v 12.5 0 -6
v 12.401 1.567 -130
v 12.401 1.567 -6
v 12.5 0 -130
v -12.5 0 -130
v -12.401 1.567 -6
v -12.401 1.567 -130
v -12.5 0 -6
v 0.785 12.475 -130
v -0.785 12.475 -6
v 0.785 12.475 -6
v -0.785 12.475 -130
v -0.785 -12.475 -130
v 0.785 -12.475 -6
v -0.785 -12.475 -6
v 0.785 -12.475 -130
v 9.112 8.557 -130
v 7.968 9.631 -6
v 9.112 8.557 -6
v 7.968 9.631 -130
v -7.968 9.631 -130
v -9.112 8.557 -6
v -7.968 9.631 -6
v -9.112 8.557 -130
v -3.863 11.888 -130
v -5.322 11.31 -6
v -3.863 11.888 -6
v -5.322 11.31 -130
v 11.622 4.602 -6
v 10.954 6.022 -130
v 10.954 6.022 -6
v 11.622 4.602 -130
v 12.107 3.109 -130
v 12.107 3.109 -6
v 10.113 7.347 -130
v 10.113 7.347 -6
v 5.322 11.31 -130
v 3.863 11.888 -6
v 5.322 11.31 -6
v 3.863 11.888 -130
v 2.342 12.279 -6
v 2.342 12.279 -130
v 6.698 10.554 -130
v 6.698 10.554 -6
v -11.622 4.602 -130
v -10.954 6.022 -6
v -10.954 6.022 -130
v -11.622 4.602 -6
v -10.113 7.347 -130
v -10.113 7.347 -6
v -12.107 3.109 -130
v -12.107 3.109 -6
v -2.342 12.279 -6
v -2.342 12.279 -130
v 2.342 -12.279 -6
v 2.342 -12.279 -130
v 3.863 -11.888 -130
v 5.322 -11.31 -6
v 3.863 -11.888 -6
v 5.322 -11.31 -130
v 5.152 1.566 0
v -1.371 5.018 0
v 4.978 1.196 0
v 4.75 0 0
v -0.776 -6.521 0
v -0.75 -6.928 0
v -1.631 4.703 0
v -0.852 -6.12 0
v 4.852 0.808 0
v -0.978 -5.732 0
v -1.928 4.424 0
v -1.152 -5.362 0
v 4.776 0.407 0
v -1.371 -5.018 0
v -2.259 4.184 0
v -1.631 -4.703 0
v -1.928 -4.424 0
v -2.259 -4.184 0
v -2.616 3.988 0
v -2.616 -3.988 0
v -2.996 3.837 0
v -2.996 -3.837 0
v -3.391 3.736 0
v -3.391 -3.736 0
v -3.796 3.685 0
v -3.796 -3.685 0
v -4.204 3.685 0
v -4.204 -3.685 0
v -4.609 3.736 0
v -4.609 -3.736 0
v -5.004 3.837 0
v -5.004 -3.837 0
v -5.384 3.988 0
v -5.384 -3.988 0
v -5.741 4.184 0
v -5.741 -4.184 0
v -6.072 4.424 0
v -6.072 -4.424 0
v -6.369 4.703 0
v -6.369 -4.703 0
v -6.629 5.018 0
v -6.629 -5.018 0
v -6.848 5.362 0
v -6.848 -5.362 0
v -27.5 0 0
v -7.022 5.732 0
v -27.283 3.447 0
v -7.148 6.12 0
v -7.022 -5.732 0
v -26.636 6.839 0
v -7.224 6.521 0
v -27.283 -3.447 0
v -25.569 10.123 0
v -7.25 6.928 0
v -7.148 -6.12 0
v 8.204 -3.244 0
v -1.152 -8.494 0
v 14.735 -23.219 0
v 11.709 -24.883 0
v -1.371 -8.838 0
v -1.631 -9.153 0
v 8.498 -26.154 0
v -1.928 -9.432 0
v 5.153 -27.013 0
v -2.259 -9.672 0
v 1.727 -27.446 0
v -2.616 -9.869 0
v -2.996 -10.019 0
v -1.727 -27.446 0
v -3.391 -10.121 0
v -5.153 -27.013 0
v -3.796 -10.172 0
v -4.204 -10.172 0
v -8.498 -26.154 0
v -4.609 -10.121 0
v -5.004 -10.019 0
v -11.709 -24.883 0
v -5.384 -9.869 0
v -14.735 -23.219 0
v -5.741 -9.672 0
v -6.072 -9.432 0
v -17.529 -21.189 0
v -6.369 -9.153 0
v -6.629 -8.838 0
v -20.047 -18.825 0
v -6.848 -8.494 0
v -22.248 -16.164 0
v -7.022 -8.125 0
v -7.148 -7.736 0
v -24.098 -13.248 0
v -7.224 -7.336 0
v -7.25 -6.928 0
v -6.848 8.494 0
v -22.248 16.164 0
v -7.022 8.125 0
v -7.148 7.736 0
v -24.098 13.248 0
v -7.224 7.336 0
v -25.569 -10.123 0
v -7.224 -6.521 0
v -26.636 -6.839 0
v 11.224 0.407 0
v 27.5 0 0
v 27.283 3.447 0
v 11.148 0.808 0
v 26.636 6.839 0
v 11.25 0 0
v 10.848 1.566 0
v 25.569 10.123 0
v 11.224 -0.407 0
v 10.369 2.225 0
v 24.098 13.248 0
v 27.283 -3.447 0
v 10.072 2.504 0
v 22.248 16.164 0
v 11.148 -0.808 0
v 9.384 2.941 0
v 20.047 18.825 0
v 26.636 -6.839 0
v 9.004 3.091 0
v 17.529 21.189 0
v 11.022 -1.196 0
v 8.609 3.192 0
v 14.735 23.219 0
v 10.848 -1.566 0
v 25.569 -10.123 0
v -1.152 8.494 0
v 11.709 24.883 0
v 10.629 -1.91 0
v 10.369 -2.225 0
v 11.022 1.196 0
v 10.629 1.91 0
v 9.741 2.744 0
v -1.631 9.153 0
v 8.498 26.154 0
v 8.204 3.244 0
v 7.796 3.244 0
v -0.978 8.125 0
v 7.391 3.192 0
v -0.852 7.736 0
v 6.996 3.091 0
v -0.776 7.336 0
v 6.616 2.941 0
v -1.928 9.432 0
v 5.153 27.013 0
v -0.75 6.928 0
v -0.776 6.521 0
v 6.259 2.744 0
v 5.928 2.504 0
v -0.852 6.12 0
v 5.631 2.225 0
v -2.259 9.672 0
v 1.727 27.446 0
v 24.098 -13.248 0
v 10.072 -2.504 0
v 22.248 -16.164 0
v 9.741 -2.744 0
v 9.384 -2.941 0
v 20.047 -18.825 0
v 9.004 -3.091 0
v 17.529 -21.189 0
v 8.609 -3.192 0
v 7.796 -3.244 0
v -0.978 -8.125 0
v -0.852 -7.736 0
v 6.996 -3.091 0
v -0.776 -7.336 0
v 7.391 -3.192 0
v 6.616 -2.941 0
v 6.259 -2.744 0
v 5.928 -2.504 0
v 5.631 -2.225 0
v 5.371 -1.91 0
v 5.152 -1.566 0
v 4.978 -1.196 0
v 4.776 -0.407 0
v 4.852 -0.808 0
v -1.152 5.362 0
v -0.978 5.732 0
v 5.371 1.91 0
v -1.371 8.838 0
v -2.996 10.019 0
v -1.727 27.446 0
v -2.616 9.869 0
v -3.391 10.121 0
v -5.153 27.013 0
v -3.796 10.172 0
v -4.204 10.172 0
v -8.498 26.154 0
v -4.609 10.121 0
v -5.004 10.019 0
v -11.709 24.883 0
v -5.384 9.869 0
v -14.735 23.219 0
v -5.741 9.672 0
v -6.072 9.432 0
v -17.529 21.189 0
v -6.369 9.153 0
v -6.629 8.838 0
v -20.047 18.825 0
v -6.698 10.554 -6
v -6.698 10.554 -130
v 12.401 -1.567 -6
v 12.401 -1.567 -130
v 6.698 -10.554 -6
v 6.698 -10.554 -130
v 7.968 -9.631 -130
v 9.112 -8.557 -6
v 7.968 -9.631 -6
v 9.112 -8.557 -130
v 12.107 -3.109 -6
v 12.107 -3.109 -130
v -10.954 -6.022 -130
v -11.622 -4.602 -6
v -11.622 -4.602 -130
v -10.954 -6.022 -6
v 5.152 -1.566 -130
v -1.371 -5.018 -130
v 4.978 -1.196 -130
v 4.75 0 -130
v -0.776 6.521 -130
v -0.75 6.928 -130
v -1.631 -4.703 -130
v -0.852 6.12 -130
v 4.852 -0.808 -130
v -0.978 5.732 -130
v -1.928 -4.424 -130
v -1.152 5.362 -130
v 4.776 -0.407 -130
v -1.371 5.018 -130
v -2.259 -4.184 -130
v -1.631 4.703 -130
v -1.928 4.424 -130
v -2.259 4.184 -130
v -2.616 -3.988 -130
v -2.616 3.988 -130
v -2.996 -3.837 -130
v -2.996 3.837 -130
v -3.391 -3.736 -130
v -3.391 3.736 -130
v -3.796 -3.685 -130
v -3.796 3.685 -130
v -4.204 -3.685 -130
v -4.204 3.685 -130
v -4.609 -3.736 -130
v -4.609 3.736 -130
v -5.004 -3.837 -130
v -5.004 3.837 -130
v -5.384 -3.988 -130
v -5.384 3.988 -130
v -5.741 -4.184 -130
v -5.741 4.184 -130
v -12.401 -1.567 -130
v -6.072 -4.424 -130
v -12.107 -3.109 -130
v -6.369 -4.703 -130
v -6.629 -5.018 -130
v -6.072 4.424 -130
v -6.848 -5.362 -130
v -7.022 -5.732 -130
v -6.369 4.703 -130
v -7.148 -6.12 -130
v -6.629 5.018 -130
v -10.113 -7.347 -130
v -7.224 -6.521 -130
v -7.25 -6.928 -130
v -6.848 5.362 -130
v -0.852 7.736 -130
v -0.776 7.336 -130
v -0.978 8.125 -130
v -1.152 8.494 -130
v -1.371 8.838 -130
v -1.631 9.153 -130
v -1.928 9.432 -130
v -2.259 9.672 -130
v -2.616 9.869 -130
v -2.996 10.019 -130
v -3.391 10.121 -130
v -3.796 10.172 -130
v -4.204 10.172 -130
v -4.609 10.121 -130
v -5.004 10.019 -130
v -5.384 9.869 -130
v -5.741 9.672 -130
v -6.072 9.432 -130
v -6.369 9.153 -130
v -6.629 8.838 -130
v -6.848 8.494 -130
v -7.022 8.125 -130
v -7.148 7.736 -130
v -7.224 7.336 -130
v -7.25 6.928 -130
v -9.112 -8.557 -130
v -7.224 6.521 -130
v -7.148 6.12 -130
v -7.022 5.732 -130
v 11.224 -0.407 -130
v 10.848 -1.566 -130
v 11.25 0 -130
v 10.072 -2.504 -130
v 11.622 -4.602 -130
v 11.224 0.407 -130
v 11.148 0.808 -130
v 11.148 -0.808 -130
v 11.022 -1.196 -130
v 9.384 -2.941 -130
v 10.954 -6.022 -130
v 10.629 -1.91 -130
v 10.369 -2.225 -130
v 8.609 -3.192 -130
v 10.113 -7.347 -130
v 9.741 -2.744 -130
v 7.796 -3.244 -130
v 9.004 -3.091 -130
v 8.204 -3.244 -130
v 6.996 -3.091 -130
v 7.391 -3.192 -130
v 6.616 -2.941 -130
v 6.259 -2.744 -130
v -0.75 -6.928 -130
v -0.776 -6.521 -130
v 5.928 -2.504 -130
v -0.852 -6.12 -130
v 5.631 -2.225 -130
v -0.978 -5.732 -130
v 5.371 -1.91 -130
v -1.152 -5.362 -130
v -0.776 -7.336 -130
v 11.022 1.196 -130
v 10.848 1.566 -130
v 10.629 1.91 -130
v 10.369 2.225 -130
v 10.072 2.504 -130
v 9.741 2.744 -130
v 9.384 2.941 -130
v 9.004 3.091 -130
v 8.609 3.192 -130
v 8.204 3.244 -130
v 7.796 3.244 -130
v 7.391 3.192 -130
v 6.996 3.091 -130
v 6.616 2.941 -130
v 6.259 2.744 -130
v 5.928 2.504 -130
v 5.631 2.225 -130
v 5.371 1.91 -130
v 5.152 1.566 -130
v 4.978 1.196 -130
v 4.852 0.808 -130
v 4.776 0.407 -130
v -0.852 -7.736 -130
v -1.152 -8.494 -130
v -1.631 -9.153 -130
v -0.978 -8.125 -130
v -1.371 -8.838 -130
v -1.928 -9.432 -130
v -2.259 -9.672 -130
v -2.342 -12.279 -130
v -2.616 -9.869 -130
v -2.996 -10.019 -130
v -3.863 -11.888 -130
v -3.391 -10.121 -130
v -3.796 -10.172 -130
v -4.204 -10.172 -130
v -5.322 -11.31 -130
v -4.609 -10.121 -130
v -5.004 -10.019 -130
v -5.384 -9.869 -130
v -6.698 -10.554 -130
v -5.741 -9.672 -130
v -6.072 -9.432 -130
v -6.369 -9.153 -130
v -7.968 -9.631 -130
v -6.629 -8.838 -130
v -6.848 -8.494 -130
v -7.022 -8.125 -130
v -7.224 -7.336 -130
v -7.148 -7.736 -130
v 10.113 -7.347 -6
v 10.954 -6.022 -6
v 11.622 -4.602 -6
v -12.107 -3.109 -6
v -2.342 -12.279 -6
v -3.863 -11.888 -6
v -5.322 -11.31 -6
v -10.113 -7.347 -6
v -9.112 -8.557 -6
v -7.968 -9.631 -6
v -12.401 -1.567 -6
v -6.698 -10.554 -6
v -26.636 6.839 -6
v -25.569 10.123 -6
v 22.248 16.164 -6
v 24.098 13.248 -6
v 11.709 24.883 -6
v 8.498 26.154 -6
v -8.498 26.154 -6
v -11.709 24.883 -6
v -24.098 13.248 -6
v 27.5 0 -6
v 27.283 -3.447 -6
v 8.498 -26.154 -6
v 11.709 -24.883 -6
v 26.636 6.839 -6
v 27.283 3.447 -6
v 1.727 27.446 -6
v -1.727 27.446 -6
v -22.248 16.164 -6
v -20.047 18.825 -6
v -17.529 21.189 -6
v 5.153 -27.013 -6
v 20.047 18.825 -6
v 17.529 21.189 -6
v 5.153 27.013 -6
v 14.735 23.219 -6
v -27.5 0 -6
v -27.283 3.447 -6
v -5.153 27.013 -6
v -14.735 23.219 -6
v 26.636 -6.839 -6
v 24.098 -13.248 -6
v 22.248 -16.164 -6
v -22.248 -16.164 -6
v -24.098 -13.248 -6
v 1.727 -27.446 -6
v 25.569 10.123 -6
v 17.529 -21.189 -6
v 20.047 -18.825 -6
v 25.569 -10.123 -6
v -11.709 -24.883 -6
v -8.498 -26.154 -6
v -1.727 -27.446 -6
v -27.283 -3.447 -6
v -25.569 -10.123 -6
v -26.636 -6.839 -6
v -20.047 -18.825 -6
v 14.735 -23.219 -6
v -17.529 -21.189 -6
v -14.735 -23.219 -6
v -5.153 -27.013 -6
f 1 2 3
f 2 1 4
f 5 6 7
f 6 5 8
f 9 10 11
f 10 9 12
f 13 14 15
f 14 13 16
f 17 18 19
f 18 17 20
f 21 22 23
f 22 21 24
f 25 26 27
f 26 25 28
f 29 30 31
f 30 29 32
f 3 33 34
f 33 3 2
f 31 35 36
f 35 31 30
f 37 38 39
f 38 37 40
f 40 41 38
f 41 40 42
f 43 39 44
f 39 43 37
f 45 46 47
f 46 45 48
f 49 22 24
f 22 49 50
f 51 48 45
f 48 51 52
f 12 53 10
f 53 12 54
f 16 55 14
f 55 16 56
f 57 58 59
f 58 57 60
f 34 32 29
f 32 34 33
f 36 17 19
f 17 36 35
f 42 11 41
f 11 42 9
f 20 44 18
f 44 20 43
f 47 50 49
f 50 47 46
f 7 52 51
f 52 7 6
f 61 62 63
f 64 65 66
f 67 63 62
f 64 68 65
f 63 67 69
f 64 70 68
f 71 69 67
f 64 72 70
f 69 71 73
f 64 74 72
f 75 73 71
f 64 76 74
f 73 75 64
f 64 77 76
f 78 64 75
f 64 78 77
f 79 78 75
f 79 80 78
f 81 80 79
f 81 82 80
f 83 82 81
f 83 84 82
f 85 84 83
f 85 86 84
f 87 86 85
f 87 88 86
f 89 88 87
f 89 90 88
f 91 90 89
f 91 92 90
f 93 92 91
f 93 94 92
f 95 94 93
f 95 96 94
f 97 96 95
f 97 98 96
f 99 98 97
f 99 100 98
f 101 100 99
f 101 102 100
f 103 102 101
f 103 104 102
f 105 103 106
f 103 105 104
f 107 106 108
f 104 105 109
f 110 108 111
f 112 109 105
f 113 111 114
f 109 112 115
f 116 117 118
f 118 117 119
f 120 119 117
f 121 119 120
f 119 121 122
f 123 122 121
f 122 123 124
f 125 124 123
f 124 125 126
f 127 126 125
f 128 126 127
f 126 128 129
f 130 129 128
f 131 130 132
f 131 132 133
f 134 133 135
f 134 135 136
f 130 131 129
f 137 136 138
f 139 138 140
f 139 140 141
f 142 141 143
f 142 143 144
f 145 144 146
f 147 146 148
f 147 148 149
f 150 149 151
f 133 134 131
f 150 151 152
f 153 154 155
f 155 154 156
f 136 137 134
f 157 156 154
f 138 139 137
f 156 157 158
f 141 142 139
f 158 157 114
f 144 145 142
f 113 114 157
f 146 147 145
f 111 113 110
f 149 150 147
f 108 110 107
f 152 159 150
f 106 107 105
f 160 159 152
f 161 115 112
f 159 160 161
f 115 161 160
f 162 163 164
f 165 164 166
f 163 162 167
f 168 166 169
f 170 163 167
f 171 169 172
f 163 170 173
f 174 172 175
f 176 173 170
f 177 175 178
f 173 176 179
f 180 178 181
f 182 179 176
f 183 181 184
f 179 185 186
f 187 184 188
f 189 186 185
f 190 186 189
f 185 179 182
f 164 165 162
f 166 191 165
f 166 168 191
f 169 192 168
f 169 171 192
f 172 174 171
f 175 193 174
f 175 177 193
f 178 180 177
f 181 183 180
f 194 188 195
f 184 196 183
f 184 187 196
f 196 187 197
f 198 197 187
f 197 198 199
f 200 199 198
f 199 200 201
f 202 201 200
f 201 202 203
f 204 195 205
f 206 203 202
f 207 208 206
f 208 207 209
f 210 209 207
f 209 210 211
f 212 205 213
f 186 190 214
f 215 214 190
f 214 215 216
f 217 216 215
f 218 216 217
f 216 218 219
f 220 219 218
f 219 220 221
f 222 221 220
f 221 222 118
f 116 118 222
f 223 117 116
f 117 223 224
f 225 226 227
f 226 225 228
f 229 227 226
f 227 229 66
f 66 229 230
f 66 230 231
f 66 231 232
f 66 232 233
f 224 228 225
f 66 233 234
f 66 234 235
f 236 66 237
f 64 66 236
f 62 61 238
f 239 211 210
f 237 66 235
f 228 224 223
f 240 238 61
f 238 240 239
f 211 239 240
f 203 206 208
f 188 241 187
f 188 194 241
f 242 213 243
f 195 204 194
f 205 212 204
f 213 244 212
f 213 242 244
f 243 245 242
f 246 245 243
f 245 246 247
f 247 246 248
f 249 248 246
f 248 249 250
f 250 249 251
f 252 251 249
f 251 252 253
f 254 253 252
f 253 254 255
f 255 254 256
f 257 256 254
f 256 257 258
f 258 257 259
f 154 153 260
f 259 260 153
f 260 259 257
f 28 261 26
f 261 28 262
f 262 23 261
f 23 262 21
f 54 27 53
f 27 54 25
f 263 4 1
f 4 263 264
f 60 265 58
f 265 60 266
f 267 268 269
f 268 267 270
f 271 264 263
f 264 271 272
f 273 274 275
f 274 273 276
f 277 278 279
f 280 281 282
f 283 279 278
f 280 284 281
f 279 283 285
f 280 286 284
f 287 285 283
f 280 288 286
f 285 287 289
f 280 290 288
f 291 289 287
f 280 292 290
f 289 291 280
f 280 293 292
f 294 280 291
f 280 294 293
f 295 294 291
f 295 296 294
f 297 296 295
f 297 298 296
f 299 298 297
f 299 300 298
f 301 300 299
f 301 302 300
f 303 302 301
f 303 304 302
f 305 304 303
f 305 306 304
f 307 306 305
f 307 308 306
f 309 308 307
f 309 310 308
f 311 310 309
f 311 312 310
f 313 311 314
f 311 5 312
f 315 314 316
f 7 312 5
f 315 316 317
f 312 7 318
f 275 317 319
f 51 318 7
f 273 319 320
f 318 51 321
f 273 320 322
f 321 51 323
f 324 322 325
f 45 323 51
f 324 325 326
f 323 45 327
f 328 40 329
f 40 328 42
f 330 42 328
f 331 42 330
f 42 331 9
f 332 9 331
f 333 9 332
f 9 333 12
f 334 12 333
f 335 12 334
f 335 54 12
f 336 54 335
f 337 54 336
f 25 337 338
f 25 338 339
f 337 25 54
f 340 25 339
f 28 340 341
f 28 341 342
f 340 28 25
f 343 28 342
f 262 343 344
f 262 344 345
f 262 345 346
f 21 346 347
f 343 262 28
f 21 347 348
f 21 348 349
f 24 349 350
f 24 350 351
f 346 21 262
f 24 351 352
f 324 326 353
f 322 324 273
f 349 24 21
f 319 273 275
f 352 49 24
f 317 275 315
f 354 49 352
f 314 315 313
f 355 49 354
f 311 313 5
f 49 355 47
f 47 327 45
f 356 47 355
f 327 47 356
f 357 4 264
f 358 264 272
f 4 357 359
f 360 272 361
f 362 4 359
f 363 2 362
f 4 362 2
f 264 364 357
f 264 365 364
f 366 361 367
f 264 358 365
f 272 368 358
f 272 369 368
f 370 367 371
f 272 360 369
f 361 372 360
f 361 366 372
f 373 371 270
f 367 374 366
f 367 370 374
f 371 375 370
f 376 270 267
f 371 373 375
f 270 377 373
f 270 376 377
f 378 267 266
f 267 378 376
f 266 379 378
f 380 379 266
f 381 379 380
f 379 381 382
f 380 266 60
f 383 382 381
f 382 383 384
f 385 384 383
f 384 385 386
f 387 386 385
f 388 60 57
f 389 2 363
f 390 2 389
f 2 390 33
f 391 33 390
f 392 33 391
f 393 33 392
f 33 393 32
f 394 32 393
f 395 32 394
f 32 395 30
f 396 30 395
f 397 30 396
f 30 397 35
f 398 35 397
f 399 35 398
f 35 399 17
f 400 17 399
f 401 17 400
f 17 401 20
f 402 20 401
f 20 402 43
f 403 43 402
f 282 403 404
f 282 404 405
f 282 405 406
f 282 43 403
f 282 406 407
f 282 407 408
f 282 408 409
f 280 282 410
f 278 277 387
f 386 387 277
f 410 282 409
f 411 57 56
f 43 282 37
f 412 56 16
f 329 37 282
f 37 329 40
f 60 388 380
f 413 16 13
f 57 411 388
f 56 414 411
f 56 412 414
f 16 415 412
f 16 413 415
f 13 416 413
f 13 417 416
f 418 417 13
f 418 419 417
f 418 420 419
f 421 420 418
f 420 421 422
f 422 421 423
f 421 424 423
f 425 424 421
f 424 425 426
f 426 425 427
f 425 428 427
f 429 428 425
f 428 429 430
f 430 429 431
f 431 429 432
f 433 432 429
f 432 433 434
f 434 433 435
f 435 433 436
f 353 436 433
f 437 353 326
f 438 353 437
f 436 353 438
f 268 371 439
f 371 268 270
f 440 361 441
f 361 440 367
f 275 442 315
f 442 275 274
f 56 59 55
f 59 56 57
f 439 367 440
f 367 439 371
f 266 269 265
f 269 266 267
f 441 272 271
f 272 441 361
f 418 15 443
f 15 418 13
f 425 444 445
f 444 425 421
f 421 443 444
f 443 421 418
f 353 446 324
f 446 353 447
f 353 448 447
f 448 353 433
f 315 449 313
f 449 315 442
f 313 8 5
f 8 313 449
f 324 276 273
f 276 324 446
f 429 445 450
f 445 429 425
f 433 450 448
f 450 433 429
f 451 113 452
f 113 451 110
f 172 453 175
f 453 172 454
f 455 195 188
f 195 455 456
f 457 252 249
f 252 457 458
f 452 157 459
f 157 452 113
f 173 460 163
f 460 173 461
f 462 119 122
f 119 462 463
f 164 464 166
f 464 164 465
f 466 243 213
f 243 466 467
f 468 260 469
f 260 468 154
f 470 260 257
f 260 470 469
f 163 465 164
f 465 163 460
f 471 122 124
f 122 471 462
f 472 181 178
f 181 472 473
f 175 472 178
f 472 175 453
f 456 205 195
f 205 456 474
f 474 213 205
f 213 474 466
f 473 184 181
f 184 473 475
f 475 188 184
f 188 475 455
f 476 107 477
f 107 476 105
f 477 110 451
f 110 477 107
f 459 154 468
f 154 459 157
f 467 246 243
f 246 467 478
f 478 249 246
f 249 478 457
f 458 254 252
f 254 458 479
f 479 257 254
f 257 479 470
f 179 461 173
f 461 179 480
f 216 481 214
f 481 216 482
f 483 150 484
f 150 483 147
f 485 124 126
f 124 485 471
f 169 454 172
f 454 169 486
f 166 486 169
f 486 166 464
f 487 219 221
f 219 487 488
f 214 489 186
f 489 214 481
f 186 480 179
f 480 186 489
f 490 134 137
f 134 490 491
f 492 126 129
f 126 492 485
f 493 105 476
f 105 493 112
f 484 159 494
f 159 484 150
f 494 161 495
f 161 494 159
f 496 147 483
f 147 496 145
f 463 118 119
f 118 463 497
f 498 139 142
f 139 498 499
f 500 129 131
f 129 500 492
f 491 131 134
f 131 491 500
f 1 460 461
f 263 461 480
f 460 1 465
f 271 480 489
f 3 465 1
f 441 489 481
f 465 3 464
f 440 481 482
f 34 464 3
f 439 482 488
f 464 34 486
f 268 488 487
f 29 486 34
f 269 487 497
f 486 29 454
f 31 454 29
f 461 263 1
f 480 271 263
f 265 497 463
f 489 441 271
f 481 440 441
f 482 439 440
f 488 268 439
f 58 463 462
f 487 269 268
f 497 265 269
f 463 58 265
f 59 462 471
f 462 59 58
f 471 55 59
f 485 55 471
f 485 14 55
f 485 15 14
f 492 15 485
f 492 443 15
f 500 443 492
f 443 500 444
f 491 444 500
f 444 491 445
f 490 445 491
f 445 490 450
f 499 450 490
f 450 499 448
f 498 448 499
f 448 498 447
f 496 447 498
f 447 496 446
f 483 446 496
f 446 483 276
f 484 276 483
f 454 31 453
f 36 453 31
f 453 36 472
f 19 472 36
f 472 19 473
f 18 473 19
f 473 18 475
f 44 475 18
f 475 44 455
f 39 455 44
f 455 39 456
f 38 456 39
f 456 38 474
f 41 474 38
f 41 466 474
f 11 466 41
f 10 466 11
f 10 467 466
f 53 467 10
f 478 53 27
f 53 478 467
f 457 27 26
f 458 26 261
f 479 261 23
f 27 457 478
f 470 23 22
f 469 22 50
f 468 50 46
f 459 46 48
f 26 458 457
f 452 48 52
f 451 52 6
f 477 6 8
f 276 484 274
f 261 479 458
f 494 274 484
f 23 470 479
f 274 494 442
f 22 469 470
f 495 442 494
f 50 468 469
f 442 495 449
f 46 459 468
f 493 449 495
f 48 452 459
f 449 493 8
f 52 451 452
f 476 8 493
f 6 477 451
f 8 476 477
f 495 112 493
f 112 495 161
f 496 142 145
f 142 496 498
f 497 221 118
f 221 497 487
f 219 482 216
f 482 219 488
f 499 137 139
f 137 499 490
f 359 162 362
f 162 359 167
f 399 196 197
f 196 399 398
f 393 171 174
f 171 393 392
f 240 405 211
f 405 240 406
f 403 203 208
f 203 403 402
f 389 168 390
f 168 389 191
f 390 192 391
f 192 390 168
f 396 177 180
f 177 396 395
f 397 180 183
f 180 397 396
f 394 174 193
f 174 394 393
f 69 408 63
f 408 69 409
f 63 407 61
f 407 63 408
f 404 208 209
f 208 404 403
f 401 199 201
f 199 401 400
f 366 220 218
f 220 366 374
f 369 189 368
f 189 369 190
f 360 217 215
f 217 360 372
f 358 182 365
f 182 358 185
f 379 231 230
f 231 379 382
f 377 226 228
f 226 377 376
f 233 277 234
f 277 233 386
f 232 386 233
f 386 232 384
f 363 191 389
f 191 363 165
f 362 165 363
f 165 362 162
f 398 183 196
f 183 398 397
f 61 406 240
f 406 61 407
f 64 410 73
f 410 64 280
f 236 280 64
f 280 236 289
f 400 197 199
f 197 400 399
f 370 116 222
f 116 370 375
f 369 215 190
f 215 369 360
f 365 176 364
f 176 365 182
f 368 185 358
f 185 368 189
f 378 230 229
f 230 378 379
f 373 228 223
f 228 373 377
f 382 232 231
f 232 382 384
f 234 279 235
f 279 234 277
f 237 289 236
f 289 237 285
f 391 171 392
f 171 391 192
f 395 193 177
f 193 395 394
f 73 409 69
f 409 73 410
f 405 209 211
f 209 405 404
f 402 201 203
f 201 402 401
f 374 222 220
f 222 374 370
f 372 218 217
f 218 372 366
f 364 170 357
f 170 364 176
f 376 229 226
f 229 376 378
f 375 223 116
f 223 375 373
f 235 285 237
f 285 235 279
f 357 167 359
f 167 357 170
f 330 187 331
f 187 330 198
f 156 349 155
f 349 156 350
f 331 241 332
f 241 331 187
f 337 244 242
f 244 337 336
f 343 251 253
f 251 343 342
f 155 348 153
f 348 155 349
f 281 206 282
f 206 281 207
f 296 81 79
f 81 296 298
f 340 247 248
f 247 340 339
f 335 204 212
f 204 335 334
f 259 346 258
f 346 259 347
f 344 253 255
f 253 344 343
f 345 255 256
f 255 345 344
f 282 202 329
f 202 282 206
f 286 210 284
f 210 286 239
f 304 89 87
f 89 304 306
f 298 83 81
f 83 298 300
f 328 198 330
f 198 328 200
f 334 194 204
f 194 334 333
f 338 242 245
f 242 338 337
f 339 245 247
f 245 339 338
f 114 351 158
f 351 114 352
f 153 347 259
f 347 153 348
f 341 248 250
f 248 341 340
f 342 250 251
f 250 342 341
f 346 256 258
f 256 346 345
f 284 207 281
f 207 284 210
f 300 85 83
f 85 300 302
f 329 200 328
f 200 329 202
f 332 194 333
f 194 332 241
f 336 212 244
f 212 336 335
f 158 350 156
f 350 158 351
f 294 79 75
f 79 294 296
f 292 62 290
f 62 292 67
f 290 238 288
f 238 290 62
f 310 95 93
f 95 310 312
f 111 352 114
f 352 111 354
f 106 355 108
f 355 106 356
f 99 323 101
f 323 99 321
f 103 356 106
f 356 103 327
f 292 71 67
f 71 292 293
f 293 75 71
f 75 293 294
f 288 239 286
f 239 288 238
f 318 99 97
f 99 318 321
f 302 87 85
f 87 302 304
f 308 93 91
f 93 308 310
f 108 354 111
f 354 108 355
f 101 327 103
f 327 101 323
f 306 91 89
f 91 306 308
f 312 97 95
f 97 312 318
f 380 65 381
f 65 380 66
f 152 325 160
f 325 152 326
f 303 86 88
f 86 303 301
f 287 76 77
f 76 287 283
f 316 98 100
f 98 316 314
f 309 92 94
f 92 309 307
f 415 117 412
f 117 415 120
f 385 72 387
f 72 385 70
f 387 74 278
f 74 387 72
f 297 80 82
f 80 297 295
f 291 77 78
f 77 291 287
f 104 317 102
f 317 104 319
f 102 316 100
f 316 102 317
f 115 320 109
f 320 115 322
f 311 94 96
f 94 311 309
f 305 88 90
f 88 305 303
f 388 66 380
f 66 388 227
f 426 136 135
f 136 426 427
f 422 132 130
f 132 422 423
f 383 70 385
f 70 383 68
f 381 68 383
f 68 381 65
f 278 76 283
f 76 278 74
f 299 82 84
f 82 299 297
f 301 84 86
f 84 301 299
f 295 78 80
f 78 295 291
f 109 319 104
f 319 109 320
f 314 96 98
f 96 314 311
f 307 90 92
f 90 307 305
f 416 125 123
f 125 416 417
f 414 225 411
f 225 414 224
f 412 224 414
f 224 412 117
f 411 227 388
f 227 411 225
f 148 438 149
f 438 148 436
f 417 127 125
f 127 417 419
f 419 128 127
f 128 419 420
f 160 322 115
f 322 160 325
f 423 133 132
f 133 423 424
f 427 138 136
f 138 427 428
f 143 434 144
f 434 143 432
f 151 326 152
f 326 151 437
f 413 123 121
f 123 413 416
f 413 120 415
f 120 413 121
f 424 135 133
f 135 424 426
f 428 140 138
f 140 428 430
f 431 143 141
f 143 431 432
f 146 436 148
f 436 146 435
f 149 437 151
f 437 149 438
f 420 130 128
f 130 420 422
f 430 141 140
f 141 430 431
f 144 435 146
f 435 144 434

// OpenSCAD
$fn = 50;


difference() {
	union() {
		translate(v = [0, 0, -130.0000000000]) {
			cylinder(h = 130, r = 12.5000000000);
		}
		translate(v = [0, 0, -6.0000000000]) {
			cylinder(h = 6, r = 27.5000000000);
		}
	}
	union() {
		#translate(v = [8.0000000000, 0.0000000000, -130]) {
			cylinder(h = 130, r = 3.2500000000);
		}
		#translate(v = [-4.0000000000, 6.9282032303, -130]) {
			cylinder(h = 130, r = 3.2500000000);
		}
		#translate(v = [-4.0000000000, -6.9282032303, -130]) {
			cylinder(h = 130, r = 3.2500000000);
		}
	}
}
